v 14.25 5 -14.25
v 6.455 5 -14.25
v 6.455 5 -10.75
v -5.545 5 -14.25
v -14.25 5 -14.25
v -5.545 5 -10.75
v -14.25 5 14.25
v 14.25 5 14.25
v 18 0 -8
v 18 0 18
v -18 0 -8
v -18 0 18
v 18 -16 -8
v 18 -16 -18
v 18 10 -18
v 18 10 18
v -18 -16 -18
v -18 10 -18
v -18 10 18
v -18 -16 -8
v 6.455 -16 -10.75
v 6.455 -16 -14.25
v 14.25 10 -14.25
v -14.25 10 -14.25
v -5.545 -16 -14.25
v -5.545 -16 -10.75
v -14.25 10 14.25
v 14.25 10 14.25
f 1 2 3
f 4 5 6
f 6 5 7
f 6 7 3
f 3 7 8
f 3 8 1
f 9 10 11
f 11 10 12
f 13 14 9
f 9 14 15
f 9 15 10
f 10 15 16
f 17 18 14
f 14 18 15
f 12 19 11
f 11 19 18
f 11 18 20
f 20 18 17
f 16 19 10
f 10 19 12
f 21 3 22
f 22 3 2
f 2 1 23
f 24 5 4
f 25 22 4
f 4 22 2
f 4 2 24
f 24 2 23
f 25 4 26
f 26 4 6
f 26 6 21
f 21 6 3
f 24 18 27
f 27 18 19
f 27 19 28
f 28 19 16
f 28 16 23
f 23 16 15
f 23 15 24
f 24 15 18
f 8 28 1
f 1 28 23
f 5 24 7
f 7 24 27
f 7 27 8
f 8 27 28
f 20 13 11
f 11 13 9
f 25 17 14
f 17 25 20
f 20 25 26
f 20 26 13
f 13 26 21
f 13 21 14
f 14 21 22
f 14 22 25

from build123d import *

# Parameters (mm, degrees)
SKETCH_1_W      = 36
SKETCH_1_H      = 36
SKETCH_1_W_2    = 12
SKETCH_1_H_2    = 3.5
EXTRUDE_1_DEPTH = 5
SKETCH_2_W      = 36
SKETCH_2_H      = 36
SKETCH_2_W_2    = 28.5
SKETCH_2_H_2    = 28.5
EXTRUDE_3_DEPTH = 10
SKETCH_3_W      = 36
SKETCH_3_H      = 10
SKETCH_3_W_2    = 12
SKETCH_3_H_2    = 3.5
EXTRUDE_4_DEPTH = 16


with BuildPart() as part:
    # 草圖1 → 填料-伸長1 (new body)
    with BuildSketch(Plane(origin=(0, 0, 0), x_dir=(1, 0, 0), z_dir=(0, 1, 0))):
        Rectangle(SKETCH_1_W, SKETCH_1_H)
        with Locations((0.454747486, 12.5)):
            Rectangle(SKETCH_1_W_2, SKETCH_1_H_2, mode=Mode.SUBTRACT)
    extrude(amount=EXTRUDE_1_DEPTH)

    # 草圖2 → 填料-伸長3 (add)
    with BuildSketch(Plane(origin=(0, 0, 0), x_dir=(1, 0, 0), z_dir=(0, 1, 0))):
        Rectangle(SKETCH_2_W, SKETCH_2_H)
        Rectangle(SKETCH_2_W_2, SKETCH_2_H_2, mode=Mode.SUBTRACT)
    extrude(amount=EXTRUDE_3_DEPTH)

    # 草圖3 → 填料-伸長4 (add)
    with BuildSketch(Plane(origin=(0, 0, 0), x_dir=(1, 0, 0), z_dir=(0, 1, 0))):
        with Locations((0, 13)):
            Rectangle(SKETCH_3_W, SKETCH_3_H)
        with Locations((0.454747486, 12.5)):
            Rectangle(SKETCH_3_W_2, SKETCH_3_H_2, mode=Mode.SUBTRACT)
    extrude(amount=-EXTRUDE_4_DEPTH)


solid = part.part
